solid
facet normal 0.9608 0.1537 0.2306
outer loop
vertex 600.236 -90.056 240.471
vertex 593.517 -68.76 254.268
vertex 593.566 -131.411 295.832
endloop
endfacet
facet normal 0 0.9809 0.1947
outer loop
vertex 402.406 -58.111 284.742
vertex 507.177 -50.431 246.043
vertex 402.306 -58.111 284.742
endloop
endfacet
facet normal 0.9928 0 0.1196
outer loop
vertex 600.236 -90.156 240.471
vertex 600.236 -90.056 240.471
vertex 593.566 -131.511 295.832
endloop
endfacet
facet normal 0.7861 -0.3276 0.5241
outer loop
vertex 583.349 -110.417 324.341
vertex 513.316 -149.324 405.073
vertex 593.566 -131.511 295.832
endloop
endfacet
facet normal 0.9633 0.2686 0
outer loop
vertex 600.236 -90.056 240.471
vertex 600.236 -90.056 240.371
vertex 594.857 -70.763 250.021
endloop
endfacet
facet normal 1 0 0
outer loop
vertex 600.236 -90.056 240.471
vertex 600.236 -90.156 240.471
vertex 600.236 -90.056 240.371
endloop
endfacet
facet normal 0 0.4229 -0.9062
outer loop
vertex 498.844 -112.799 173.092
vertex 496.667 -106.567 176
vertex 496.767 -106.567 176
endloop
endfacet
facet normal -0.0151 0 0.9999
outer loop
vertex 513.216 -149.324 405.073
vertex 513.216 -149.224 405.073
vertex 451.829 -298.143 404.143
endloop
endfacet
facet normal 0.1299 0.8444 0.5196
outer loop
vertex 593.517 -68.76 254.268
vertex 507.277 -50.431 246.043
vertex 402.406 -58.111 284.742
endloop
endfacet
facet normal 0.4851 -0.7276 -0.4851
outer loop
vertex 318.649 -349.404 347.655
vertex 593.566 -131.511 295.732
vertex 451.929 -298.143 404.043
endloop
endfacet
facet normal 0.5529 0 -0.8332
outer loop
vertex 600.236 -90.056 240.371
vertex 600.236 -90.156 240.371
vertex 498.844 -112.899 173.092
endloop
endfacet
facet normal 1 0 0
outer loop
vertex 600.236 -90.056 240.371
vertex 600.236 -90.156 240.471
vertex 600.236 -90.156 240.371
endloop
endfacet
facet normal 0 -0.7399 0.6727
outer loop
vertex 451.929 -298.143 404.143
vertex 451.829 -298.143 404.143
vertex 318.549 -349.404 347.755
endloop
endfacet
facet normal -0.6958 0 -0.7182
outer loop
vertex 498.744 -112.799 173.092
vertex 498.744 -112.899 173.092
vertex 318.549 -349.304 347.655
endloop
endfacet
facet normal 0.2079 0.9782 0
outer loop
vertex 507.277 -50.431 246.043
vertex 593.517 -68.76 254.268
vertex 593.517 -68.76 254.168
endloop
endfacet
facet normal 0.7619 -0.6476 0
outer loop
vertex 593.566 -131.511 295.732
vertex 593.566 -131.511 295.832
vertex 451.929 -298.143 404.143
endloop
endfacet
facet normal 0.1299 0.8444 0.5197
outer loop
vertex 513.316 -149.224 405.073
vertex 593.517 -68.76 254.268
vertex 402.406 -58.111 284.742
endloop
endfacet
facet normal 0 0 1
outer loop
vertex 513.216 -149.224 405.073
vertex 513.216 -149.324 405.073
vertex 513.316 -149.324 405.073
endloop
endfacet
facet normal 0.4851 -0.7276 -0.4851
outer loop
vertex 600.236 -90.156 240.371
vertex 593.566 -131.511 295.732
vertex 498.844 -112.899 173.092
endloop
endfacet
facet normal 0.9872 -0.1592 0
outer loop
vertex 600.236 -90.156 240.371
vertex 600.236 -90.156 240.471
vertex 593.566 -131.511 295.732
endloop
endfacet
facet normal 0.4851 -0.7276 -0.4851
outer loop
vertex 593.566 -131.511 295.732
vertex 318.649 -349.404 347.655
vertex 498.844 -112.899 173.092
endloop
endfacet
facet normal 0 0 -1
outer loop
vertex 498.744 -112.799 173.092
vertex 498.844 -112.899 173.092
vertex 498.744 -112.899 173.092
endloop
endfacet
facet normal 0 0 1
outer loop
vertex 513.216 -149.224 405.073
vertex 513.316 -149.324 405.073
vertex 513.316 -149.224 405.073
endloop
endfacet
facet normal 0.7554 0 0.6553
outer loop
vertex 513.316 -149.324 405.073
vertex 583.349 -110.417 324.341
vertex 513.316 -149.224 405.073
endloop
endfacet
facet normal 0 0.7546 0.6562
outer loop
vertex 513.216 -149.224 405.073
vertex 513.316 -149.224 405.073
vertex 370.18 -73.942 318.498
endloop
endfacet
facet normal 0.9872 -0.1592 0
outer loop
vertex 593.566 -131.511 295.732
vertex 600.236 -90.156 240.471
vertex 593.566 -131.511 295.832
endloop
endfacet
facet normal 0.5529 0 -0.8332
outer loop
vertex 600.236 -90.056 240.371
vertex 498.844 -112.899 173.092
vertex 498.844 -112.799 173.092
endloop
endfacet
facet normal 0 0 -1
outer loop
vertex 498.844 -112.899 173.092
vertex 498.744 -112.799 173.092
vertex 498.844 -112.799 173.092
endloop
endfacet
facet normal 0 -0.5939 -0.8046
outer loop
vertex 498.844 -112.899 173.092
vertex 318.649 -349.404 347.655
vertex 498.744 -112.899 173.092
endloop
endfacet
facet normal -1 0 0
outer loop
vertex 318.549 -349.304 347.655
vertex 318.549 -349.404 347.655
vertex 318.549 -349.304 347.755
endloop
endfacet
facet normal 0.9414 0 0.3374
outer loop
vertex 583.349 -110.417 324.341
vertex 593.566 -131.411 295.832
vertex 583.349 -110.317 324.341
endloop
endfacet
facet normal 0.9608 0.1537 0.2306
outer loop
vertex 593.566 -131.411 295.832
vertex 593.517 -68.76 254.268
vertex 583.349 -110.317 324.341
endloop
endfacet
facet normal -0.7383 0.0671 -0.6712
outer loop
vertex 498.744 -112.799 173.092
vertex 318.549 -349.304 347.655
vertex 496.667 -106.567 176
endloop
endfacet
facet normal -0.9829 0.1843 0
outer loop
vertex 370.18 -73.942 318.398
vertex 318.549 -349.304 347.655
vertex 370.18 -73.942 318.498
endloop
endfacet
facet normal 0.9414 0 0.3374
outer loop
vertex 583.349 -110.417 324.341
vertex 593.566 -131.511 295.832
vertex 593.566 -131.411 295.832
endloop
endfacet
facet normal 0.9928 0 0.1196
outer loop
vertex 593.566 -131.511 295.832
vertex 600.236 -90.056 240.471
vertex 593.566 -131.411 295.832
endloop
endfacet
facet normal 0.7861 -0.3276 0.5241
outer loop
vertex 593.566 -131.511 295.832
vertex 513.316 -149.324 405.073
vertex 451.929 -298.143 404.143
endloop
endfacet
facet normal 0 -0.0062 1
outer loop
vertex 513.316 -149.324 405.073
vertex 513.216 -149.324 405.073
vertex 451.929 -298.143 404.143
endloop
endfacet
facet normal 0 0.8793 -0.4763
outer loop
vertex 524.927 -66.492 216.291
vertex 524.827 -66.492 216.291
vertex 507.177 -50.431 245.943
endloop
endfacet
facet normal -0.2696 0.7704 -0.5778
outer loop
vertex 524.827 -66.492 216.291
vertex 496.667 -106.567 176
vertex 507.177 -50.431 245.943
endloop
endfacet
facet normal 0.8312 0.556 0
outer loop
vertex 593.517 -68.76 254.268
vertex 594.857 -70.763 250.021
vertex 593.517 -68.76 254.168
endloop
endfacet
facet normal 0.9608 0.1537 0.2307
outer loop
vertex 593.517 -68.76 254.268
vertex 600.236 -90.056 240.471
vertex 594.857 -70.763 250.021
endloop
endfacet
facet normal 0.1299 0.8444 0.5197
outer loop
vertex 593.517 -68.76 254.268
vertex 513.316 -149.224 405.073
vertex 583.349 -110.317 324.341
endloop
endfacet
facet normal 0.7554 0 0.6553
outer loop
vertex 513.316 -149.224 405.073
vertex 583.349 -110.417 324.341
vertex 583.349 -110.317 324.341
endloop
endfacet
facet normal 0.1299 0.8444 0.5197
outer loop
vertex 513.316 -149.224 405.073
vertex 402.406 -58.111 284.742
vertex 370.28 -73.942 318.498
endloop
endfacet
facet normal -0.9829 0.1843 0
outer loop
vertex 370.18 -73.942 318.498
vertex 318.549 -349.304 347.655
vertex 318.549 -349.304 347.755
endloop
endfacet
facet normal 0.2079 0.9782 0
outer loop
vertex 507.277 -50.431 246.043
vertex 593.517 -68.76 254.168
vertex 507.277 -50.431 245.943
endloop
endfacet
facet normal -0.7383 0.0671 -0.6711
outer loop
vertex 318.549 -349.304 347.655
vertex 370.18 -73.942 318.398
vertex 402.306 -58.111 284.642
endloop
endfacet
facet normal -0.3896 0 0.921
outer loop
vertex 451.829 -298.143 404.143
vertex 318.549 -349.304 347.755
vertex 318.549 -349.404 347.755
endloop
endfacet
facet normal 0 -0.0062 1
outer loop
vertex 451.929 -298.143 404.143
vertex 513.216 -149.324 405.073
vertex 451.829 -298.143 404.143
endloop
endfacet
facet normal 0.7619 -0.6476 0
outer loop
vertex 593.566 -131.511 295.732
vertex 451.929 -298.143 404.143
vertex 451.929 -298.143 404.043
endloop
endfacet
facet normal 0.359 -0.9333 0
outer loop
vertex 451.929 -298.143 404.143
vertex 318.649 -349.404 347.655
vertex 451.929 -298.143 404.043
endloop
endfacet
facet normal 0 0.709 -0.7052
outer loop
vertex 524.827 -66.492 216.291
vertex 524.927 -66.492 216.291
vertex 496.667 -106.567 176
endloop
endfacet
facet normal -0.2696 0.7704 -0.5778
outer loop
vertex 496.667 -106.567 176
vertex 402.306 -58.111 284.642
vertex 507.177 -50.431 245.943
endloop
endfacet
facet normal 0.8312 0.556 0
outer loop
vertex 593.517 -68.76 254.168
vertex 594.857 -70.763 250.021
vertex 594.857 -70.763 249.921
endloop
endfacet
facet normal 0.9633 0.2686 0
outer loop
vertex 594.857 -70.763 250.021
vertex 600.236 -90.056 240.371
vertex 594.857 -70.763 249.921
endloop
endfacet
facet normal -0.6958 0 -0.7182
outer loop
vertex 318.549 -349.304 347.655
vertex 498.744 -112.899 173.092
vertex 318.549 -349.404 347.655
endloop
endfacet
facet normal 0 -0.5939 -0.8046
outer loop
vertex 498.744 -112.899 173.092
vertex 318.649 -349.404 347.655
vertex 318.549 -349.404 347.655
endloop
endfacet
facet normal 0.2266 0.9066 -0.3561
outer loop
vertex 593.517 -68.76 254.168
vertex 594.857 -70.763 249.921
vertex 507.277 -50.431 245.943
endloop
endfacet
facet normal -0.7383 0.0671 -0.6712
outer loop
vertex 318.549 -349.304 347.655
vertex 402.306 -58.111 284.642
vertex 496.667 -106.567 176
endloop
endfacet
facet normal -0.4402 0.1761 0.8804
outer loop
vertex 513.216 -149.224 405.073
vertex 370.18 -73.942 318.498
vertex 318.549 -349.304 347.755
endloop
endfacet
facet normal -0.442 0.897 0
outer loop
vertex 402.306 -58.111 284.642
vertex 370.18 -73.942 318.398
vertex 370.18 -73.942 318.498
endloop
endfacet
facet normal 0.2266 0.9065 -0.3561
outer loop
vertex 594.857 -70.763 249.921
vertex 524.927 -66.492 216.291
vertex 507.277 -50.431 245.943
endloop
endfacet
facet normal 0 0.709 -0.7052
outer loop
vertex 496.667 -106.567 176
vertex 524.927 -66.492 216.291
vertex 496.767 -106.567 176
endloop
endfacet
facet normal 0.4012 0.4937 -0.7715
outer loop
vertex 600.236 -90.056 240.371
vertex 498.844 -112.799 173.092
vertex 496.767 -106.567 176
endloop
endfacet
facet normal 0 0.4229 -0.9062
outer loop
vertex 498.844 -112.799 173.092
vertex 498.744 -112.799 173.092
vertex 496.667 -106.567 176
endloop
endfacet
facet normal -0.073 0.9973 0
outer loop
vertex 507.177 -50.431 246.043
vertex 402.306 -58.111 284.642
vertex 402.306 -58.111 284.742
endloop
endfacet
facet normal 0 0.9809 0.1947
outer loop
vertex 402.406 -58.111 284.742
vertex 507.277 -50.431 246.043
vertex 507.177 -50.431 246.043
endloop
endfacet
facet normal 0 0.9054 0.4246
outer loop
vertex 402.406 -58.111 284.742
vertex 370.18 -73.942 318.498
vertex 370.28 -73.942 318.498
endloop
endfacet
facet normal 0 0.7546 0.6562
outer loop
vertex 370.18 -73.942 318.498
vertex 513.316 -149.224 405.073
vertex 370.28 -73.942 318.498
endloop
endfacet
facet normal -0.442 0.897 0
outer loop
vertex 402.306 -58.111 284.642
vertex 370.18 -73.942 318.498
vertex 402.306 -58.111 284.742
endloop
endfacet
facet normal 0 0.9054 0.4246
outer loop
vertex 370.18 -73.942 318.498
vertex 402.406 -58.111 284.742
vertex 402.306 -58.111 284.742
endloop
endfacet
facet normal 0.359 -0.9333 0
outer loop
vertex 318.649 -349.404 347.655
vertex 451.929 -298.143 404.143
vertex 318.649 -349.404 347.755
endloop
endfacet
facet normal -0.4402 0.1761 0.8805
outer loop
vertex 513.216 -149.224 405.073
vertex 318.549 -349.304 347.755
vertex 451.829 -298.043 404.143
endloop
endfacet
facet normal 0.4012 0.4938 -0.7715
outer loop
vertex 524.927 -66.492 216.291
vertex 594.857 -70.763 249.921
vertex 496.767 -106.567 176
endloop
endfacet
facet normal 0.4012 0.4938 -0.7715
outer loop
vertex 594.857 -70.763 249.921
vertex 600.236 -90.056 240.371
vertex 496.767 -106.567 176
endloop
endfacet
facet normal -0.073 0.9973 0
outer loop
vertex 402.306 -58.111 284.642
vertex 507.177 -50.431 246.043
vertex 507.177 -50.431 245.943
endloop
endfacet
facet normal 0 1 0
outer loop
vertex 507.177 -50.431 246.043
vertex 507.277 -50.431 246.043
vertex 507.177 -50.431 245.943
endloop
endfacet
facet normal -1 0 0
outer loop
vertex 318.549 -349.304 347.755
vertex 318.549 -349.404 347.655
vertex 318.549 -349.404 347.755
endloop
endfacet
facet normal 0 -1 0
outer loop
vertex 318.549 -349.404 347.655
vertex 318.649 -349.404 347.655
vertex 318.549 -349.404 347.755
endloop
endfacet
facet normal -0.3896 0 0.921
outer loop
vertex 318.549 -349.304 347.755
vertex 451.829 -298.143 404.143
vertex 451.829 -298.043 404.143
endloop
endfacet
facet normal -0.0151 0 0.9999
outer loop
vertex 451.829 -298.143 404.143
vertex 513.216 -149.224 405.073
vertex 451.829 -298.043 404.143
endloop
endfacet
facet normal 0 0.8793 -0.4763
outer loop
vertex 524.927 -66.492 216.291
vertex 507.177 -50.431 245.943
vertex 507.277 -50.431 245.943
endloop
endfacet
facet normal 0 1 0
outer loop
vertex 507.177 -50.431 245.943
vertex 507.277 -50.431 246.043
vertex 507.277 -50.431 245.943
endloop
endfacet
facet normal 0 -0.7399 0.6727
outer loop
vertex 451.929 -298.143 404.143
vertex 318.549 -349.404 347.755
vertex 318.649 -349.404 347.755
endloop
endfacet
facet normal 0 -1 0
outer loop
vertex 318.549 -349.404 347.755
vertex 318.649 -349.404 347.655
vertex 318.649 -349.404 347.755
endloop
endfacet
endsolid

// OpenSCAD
hull(){ translate([600.136065061,-90.1563966218,240.370659994])cube(0.1,0.1,0.1);
translate([524.826904055,-66.5924826904,216.290801187])cube(0.1,0.1,0.1);
translate([507.17662226,-50.530726257,245.943274602])cube(0.1,0.1,0.1);
translate([594.756973212,-70.8630212648,249.921292461])cube(0.1,0.1,0.1);
translate([593.417282046,-68.8598038135,254.167860686])cube(0.1,0.1,0.1);
translate([583.248974008,-110.417236662,324.240766074])cube(0.1,0.1,0.1);
translate([593.466042155,-131.510538642,295.731850117])cube(0.1,0.1,0.1);
translate([402.306344881,-58.2113662904,284.641884002])cube(0.1,0.1,0.1);
translate([498.743961353,-112.898550725,173.09178744])cube(0.1,0.1,0.1);
translate([496.666666667,-106.666666667,176.0])cube(0.1,0.1,0.1);
translate([370.179640719,-74.0419161677,318.398203593])cube(0.1,0.1,0.1);
translate([513.216216216,-149.324324324,404.972972973])cube(0.1,0.1,0.1);
translate([451.828571429,-298.142857143,404.042857143])cube(0.1,0.1,0.1);
translate([318.549222798,-349.404145078,347.655440415])cube(0.1,0.1,0.1); }
